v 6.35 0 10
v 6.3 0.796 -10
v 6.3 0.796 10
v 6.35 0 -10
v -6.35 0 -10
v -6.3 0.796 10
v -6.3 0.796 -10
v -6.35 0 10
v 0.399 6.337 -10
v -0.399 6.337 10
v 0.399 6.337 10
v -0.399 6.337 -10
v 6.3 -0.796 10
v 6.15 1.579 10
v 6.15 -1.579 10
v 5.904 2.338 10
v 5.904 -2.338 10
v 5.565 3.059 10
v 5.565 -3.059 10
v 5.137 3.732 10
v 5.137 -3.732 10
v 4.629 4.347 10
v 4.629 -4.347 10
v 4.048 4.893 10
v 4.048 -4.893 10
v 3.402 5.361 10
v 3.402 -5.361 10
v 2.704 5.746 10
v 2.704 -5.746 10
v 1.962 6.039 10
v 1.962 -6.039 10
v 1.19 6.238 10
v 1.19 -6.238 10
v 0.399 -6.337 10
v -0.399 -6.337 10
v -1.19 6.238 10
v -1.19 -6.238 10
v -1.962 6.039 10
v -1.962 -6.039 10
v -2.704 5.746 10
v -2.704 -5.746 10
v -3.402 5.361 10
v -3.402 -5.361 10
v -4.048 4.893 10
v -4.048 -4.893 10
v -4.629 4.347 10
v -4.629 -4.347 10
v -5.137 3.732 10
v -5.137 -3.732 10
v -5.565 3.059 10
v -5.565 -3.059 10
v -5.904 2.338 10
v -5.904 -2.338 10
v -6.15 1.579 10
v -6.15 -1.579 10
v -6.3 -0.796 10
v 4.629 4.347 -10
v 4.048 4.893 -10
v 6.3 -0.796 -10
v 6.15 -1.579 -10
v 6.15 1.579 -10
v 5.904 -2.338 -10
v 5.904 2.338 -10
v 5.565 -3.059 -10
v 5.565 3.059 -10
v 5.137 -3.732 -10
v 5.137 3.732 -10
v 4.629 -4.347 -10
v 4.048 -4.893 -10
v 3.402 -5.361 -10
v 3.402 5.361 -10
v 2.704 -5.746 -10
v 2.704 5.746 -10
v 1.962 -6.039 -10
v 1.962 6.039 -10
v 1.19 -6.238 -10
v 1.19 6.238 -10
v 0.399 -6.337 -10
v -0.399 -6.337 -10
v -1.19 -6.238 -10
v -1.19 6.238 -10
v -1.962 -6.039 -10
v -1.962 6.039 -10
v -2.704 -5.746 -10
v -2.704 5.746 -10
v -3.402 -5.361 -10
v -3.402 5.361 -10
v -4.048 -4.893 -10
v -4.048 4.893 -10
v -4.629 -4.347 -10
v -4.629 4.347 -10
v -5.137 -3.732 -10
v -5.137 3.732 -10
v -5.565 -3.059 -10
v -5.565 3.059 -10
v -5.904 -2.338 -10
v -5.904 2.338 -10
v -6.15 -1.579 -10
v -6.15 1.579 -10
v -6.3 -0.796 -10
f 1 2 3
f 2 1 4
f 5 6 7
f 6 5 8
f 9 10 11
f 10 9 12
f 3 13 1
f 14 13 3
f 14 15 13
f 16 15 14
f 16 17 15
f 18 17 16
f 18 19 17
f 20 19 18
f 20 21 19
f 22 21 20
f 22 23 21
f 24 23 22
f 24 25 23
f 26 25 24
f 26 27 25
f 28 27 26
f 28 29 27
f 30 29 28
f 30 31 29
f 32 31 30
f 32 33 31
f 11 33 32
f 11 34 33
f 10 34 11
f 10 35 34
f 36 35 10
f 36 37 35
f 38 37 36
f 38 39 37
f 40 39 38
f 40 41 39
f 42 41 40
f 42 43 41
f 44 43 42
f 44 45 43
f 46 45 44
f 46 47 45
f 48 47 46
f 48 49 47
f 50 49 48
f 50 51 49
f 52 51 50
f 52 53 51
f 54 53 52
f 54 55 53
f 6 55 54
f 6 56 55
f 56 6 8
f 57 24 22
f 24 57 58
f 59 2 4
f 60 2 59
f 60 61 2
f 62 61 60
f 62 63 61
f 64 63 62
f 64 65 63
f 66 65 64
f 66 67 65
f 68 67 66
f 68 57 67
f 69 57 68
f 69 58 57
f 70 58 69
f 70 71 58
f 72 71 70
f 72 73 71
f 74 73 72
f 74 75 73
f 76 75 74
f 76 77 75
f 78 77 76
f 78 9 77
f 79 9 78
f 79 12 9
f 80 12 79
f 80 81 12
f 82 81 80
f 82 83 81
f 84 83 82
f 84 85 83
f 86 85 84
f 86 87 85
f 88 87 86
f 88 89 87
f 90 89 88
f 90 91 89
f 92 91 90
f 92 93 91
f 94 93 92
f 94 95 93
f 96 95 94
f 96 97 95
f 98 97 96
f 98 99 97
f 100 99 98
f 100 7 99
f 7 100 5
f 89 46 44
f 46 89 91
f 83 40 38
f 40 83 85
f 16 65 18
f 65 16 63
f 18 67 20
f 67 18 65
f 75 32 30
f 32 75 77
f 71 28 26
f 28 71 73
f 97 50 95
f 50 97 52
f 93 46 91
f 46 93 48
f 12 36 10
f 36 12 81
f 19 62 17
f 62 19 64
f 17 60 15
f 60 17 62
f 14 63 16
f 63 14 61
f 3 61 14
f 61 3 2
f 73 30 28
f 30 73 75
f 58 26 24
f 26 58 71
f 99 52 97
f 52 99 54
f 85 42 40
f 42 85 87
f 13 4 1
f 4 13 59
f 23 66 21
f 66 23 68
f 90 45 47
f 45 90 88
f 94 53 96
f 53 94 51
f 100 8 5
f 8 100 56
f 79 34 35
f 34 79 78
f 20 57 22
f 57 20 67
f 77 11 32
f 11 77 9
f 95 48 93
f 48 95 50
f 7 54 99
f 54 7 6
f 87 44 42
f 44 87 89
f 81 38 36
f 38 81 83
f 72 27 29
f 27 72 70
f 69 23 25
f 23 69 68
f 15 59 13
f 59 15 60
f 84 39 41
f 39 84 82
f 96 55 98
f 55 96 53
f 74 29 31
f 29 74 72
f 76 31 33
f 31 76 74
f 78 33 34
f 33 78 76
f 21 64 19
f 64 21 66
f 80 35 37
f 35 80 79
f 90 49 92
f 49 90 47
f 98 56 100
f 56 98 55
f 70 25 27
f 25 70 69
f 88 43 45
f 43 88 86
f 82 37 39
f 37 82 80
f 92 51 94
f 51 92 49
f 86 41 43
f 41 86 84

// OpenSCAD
$fn = 50;


difference() {
	union() {
		translate(v = [0, 0, -10.0000000000]) {
			cylinder(h = 20, r = 6.3500000000);
		}
	}
	union() {
		translate(v = [0, 0, -100.0000000000]) {
			cylinder(h = 200, r = 0);
		}
	}
}
